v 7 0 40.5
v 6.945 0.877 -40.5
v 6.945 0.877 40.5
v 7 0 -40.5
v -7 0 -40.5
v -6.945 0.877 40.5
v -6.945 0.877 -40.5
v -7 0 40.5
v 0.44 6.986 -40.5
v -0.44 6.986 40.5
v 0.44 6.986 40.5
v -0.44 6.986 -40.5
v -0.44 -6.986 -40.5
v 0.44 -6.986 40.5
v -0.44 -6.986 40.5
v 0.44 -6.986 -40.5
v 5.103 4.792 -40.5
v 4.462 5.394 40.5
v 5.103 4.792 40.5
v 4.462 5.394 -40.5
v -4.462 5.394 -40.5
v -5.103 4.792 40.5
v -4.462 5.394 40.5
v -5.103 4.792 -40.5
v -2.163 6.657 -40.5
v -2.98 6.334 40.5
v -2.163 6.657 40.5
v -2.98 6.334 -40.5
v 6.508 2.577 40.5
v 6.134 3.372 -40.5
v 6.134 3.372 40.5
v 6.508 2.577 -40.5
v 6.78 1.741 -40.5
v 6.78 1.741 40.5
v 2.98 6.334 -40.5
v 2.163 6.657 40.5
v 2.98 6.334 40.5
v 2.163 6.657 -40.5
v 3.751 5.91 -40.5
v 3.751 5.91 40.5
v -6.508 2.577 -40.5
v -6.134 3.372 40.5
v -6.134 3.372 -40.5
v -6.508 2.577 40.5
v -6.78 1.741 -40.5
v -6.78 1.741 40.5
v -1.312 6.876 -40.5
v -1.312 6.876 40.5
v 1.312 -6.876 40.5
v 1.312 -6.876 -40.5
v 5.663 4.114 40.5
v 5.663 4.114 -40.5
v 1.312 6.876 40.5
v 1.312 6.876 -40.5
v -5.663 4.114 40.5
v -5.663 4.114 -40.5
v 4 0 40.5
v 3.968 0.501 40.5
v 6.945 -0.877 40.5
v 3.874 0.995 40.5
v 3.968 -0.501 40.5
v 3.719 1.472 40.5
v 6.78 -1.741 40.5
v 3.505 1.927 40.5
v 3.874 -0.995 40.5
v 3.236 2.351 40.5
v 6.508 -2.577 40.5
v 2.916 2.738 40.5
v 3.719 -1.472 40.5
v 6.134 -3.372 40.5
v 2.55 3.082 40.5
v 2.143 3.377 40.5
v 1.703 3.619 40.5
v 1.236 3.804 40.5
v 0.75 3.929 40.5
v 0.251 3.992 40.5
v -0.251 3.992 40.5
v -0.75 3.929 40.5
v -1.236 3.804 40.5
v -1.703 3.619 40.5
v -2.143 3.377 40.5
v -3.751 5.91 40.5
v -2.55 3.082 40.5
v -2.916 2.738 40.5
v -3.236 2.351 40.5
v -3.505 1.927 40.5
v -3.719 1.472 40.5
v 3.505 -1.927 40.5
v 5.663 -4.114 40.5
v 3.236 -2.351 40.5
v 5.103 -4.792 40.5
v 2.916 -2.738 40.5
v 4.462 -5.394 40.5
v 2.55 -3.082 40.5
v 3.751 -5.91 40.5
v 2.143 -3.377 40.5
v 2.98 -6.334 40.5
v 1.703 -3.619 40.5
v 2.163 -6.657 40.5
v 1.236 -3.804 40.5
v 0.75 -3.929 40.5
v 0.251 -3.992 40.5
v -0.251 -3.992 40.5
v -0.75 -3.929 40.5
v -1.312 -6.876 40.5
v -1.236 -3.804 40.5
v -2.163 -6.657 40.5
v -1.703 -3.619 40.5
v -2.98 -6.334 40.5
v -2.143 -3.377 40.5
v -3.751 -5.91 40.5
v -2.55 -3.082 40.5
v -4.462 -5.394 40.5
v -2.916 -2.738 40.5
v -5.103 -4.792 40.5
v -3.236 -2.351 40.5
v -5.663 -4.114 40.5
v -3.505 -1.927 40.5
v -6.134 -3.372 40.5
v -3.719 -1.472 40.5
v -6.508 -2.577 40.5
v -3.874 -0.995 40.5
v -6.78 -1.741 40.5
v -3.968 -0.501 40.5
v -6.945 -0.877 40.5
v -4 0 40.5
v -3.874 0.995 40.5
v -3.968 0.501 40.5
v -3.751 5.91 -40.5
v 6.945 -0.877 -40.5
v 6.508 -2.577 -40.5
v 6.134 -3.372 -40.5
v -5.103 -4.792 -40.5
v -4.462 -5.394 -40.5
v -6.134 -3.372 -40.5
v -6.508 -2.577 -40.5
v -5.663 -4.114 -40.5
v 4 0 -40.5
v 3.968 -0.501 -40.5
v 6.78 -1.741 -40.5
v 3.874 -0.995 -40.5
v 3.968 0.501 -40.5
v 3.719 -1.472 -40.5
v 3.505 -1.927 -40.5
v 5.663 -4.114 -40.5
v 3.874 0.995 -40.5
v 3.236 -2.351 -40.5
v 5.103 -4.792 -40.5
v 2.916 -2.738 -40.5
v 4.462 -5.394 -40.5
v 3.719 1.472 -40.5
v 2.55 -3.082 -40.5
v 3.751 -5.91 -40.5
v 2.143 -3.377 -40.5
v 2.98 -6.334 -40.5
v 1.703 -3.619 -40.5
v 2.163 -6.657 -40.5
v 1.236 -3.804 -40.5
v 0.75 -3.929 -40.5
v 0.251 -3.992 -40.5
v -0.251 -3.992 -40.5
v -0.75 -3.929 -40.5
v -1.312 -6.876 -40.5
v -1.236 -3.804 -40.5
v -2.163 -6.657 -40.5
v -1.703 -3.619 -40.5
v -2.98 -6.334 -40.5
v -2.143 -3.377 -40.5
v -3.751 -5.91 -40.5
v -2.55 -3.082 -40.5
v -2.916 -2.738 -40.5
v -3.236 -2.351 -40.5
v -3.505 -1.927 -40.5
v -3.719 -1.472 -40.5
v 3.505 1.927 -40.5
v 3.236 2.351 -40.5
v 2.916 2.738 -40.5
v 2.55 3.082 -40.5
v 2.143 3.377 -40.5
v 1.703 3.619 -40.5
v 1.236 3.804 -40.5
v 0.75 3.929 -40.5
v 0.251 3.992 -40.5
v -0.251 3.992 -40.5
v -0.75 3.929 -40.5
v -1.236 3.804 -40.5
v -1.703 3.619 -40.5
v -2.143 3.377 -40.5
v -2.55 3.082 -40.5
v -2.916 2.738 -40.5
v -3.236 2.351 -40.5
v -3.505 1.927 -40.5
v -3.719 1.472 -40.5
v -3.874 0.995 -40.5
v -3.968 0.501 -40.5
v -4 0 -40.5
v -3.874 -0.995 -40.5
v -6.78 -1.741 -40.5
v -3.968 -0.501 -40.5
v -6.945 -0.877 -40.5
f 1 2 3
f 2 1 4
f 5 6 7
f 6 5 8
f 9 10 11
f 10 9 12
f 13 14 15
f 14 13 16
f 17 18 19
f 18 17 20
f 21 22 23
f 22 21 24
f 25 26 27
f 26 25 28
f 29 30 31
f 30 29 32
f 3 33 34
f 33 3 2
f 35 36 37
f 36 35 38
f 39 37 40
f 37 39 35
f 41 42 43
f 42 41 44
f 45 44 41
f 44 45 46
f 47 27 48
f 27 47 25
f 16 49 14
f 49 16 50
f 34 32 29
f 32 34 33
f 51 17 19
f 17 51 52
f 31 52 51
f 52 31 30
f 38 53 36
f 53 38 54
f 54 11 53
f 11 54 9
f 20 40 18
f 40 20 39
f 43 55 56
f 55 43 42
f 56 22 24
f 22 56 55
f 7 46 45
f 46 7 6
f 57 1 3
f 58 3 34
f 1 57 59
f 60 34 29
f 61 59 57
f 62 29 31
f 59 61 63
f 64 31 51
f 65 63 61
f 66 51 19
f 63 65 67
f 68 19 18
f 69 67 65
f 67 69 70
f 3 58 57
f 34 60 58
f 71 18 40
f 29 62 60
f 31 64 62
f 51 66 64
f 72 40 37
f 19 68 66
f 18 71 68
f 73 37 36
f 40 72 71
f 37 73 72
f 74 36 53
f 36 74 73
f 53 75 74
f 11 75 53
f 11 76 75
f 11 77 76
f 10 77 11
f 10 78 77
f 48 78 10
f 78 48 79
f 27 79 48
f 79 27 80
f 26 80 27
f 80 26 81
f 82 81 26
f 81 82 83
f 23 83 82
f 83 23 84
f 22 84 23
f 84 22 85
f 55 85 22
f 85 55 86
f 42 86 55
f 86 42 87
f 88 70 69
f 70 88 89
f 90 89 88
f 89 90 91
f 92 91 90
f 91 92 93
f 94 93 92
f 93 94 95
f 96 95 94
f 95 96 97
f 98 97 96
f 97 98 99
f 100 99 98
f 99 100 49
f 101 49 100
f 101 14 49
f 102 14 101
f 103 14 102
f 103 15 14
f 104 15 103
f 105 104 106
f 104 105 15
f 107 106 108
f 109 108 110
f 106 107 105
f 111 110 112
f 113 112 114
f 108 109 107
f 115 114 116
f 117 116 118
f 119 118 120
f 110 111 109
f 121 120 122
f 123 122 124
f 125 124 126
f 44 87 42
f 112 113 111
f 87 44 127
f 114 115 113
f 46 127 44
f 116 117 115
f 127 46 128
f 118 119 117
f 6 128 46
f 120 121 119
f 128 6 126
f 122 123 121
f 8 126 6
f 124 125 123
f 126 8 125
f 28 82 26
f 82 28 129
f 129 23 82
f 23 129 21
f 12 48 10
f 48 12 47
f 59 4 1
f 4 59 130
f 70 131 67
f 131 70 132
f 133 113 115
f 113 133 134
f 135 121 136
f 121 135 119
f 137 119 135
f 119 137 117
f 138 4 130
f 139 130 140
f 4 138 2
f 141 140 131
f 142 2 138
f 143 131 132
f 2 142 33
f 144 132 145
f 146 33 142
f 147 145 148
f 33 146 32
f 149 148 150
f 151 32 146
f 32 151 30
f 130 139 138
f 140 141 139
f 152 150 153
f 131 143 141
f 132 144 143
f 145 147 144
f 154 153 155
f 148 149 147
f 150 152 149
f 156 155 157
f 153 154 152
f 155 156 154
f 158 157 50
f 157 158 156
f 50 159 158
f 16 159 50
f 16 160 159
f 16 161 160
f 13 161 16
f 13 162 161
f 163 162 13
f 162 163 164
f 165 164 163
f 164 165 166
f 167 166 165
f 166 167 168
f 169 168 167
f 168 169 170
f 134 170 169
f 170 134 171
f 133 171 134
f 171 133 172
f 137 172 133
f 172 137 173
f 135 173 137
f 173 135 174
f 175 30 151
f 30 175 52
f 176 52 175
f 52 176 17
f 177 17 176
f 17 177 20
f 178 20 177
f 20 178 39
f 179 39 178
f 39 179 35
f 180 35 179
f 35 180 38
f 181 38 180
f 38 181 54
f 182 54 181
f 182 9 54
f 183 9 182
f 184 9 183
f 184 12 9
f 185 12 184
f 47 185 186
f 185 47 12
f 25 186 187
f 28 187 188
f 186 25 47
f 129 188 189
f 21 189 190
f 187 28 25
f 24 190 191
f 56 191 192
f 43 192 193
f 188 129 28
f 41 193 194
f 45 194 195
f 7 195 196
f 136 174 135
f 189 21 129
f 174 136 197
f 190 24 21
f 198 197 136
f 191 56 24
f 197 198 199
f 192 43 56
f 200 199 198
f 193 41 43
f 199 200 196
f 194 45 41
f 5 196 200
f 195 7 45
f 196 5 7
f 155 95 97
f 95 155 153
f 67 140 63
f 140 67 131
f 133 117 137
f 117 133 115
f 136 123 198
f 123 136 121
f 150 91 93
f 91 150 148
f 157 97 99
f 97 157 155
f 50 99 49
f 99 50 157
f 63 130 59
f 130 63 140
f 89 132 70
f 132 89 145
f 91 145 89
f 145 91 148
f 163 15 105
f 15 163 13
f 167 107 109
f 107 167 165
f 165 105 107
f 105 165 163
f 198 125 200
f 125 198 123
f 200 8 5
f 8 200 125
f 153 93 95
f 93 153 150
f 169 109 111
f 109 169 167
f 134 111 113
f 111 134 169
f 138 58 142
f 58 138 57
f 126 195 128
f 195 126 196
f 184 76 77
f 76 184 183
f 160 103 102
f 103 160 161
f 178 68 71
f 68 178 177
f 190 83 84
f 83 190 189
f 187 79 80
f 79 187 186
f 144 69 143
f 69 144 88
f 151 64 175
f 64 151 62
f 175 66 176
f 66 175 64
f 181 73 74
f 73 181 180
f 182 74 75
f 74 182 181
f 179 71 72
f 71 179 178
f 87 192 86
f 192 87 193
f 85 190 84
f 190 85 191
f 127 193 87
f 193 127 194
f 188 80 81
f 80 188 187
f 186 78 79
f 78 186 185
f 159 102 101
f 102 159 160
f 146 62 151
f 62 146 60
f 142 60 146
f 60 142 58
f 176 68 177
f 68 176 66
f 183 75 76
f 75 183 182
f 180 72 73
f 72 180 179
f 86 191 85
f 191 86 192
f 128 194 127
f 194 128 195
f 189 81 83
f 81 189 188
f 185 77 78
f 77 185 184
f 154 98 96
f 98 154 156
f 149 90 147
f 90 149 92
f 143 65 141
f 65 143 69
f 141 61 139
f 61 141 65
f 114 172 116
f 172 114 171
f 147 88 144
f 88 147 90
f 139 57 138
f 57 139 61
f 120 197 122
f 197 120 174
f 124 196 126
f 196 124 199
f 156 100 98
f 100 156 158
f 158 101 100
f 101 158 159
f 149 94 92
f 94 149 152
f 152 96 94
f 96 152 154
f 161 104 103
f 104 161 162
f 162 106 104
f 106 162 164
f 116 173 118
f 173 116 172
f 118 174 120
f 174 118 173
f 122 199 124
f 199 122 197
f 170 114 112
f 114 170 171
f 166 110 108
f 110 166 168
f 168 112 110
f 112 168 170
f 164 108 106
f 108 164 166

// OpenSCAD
$fn = 50;


difference() {
	union() {
		translate(v = [0, 0, -40.5000000000]) {
			cylinder(h = 81, r = 7.0000000000);
		}
	}
	union() {
		translate(v = [0, 0, -100.0000000000]) {
			cylinder(h = 200, r = 4);
		}
	}
}
